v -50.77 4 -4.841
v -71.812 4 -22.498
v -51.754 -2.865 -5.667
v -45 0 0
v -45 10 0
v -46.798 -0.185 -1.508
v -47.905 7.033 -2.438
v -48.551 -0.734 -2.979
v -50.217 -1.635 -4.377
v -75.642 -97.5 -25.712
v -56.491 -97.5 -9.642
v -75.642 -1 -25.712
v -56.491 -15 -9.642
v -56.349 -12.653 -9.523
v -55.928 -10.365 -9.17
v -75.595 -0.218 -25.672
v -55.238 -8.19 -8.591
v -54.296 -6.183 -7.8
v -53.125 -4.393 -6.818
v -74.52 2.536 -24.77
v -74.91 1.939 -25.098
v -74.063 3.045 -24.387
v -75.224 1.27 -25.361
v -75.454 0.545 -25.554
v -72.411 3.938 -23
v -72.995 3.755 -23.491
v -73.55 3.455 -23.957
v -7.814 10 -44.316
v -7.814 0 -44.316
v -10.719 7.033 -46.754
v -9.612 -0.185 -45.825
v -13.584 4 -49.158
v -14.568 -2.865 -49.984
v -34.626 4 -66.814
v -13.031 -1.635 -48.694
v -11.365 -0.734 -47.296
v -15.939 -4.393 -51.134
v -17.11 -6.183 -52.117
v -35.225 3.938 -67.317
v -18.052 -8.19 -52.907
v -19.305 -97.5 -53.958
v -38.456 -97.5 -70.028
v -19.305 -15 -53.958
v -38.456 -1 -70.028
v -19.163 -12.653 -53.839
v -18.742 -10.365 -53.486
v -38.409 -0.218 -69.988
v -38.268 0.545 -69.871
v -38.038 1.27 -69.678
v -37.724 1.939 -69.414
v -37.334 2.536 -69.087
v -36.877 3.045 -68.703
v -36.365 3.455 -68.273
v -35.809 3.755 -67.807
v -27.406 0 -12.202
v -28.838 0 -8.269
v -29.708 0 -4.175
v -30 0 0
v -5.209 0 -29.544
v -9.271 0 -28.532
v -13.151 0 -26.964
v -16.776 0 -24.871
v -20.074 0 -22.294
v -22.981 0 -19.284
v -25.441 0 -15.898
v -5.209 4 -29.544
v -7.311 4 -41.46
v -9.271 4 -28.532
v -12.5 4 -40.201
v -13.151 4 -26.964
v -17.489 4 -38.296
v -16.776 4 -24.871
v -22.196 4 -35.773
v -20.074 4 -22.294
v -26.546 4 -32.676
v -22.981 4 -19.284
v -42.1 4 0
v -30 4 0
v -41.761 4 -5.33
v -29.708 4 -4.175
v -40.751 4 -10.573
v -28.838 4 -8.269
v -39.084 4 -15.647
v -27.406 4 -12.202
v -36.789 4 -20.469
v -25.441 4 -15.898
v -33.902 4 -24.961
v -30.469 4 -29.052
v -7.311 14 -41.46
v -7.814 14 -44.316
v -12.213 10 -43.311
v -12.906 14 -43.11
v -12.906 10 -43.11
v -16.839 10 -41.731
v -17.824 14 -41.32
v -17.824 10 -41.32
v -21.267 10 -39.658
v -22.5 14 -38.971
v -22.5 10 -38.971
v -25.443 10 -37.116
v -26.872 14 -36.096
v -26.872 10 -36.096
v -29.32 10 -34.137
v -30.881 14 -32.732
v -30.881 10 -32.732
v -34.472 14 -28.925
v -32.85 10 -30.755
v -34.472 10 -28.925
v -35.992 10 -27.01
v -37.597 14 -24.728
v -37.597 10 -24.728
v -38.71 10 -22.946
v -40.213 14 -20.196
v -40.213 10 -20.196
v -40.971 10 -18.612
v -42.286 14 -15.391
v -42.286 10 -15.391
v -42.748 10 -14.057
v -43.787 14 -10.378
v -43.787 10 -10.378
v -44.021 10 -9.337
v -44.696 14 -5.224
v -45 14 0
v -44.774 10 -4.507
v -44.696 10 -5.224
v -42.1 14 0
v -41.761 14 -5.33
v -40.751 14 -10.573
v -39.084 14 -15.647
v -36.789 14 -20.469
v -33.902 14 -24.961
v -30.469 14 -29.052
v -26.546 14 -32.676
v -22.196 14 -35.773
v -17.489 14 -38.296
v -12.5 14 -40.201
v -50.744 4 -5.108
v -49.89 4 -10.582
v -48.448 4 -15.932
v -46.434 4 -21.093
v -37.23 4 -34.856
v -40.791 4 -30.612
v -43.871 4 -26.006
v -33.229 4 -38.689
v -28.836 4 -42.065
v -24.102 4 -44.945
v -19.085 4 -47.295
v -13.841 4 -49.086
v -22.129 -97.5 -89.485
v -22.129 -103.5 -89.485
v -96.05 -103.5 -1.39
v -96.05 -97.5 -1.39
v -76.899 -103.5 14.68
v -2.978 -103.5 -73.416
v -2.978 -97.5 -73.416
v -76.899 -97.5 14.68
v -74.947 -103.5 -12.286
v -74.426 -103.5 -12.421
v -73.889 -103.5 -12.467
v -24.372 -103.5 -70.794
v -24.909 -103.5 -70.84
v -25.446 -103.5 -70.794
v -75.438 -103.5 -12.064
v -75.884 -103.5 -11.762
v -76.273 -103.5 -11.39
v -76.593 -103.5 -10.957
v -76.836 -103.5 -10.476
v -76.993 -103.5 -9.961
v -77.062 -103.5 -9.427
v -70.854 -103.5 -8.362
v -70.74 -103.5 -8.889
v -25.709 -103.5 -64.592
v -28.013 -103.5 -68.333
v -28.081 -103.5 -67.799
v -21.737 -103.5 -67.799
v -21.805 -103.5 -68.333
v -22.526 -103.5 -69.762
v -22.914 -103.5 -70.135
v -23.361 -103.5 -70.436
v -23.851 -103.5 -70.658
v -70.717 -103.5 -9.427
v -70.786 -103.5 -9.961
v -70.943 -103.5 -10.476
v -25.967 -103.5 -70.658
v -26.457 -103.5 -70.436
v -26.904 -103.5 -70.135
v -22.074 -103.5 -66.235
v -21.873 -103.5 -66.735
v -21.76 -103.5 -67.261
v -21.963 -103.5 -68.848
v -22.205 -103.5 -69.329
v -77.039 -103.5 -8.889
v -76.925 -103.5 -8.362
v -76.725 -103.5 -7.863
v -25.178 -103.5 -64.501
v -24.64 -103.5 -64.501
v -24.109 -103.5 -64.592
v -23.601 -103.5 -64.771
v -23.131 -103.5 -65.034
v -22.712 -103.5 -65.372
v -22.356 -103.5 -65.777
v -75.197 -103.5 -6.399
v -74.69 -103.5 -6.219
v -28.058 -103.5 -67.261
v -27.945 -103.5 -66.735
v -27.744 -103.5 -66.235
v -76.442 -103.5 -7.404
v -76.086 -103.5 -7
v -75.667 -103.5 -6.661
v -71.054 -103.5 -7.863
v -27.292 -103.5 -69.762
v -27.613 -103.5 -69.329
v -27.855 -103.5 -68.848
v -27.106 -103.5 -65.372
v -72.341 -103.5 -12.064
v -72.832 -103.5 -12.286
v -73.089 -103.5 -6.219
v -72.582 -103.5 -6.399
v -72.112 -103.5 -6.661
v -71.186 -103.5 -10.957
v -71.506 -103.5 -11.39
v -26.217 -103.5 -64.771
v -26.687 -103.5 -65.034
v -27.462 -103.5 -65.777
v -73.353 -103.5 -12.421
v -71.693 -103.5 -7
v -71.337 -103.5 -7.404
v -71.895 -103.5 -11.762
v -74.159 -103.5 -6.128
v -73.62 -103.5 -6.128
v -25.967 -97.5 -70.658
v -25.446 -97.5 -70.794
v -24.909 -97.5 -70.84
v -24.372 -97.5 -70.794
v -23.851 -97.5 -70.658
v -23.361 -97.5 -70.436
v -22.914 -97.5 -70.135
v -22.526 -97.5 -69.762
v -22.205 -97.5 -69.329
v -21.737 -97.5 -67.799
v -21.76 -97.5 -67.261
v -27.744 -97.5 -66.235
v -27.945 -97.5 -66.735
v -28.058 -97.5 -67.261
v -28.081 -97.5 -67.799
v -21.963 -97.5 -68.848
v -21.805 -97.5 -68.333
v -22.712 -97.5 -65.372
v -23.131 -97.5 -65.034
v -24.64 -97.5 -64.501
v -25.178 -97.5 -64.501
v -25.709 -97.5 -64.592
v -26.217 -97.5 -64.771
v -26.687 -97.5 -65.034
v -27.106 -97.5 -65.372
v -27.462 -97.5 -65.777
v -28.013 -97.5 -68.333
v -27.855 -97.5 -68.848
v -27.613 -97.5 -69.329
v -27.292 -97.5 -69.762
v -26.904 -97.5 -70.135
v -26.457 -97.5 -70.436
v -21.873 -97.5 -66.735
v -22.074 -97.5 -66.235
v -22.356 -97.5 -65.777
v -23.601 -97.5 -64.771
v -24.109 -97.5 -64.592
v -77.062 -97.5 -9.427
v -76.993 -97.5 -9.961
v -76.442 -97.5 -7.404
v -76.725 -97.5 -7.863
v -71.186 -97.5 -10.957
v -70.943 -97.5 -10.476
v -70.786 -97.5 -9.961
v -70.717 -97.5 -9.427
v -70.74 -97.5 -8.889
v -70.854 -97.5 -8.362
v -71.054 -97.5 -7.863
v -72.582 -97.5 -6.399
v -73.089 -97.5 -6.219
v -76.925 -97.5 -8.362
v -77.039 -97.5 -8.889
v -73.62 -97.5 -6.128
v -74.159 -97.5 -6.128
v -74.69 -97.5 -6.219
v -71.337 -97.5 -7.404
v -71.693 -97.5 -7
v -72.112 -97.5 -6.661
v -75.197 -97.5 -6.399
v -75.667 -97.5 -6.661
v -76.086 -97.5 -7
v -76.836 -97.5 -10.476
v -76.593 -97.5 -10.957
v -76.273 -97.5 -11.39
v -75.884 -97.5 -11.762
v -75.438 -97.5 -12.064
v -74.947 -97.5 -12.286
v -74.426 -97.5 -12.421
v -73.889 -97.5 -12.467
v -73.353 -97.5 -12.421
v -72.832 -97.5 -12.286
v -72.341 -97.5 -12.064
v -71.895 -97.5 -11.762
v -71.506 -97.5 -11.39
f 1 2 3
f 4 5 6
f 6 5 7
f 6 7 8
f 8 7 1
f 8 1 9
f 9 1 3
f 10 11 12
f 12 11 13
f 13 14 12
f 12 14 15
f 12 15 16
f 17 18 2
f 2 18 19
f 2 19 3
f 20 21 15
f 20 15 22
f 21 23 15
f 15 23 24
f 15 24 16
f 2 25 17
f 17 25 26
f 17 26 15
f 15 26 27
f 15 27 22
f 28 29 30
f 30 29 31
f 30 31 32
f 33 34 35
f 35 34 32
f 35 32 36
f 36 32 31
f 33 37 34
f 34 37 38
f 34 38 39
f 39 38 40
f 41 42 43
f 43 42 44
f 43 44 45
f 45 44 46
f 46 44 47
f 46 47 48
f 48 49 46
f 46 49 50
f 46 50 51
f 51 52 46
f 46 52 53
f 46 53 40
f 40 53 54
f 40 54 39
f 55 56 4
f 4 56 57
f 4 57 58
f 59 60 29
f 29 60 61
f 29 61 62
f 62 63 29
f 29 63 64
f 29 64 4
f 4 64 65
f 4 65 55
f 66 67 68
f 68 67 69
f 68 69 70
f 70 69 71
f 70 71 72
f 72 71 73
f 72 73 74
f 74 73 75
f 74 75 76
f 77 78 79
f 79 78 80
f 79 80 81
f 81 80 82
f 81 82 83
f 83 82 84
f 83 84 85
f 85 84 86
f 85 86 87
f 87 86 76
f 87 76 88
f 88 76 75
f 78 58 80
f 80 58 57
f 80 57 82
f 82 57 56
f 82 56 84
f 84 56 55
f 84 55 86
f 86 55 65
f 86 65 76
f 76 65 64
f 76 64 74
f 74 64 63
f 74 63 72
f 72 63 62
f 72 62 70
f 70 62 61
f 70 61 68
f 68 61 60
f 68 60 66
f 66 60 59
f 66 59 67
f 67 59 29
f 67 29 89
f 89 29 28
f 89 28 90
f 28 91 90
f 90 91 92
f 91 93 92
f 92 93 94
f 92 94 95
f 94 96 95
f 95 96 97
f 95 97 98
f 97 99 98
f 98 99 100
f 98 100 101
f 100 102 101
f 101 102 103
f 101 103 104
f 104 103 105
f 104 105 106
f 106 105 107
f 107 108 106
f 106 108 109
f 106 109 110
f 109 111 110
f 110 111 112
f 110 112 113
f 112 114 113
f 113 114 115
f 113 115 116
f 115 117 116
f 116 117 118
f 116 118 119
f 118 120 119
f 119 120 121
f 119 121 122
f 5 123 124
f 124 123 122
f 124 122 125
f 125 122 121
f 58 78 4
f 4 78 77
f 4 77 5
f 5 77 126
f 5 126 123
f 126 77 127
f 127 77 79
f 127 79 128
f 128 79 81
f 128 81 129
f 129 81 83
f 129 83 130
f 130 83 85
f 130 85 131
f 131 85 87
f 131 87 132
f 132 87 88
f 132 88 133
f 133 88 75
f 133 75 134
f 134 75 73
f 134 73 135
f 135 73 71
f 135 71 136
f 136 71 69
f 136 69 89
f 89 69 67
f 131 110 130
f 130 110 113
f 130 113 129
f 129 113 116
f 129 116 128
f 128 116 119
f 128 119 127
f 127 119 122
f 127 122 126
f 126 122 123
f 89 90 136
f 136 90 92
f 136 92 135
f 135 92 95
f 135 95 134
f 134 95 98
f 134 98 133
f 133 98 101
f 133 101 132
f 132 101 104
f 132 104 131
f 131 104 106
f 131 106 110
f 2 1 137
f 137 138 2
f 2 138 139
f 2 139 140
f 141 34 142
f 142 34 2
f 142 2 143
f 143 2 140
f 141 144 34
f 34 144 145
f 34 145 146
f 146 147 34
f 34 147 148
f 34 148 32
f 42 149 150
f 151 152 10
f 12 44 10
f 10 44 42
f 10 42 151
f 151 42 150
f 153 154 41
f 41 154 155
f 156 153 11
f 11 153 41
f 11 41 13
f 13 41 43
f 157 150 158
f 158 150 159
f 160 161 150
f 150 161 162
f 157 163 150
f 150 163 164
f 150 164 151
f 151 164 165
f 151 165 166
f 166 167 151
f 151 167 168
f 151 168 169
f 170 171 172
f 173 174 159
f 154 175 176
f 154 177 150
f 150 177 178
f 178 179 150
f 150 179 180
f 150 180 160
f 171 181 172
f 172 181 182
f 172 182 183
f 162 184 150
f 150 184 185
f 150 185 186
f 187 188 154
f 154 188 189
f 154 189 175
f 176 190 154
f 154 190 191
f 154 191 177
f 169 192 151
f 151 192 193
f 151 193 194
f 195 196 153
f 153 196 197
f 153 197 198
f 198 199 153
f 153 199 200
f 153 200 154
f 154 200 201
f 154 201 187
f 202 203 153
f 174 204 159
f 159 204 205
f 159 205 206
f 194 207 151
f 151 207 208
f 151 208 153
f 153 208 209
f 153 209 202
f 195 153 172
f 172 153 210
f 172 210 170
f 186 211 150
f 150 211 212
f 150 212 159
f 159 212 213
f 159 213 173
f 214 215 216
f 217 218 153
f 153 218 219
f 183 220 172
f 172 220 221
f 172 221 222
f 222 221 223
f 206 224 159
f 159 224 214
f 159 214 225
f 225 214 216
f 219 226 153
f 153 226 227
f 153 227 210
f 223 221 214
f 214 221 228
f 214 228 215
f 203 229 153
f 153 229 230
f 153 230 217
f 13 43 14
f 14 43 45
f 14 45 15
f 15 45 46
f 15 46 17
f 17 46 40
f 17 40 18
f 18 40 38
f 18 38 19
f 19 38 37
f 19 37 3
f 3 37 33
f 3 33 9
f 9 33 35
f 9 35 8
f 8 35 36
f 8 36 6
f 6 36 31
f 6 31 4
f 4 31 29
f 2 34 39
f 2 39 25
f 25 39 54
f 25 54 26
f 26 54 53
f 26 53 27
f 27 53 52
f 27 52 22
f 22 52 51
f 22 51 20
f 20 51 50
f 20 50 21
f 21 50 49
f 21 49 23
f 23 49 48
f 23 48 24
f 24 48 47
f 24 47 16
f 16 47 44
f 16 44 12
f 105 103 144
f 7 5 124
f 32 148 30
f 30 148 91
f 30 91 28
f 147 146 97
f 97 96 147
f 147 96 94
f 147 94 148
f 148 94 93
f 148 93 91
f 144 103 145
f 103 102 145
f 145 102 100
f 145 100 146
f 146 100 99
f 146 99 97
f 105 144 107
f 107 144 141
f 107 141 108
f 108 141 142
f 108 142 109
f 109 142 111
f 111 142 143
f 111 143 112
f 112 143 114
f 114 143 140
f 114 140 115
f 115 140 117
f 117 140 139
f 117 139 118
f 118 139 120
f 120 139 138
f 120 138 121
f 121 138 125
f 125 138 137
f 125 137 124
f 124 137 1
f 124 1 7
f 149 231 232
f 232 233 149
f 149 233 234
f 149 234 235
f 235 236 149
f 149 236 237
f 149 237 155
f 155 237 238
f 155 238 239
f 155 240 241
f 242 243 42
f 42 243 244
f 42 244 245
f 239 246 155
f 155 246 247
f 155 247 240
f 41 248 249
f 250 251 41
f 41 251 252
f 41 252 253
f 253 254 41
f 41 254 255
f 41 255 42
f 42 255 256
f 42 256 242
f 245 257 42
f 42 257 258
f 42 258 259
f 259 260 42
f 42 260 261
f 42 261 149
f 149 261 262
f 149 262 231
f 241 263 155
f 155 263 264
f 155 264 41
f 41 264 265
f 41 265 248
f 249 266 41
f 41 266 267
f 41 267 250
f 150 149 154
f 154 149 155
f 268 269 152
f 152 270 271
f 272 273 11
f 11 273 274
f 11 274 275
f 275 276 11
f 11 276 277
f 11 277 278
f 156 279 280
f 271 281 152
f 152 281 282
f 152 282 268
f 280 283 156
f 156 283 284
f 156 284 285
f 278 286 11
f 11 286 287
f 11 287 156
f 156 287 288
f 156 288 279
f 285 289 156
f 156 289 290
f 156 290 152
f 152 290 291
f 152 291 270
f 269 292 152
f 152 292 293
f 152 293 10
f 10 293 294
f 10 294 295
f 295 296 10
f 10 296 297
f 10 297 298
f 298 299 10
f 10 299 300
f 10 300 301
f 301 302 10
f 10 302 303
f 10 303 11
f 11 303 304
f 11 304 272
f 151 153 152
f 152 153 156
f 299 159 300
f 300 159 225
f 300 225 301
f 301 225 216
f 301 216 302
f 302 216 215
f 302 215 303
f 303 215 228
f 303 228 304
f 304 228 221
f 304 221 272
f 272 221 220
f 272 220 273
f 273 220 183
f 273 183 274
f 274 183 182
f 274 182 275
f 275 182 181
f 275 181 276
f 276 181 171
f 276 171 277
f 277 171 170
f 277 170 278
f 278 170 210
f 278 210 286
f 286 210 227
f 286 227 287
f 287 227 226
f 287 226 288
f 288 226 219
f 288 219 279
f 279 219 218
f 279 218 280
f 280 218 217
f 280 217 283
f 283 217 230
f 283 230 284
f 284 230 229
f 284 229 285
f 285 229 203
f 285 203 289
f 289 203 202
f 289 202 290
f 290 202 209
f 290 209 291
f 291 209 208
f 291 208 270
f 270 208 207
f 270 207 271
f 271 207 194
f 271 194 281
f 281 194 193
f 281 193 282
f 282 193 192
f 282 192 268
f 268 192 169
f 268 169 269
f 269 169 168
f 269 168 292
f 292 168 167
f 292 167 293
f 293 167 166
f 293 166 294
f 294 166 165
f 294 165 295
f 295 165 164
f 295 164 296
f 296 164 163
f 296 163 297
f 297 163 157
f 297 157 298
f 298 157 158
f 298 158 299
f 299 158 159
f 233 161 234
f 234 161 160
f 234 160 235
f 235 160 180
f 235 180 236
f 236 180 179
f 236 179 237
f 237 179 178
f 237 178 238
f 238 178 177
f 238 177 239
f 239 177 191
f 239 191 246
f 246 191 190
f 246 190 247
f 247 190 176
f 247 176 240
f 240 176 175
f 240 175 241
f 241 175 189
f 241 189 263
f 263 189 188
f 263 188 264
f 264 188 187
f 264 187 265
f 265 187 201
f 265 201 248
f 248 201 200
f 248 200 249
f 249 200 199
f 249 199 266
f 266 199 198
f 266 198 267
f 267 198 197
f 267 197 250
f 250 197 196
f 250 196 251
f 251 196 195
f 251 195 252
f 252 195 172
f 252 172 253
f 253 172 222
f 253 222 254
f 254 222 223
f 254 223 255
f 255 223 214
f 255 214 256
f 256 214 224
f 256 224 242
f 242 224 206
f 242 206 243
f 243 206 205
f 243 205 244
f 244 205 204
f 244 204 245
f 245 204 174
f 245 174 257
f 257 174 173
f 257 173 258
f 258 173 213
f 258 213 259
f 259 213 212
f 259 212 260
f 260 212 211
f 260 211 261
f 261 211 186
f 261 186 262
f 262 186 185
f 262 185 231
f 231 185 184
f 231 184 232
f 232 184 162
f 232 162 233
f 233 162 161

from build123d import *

# Parameters (mm, degrees)
BOSS_EXTRUDE1_DEPTH = 4
BOSS_EXTRUDE2_DEPTH = 14
BOSS_EXTRUDE3_DEPTH = 4
BOSS_EXTRUDE4_DEPTH = 103.5
FILLET1_R           = 15
FILLET2_R           = 5
CHAMFER1_SIZE       = 6
SKETCH6_W           = 25
SKETCH6_H           = 6
BOSS_EXTRUDE5_DEPTH = 25.4
SKETCH7_W           = 25
SKETCH7_H           = 6
BOSS_EXTRUDE6_DEPTH = 31.75
SKETCH8_R           = 2.5527
CUT_EXTRUDE1_DEPTH  = 25.4
SKETCH9_R           = 3.175
CUT_EXTRUDE2_DEPTH  = 25.4


with BuildPart() as part:
    # Sketch1 → Boss-Extrude1 (new body)
    with BuildSketch(Plane(origin=(0, 0, 0), x_dir=(1, 0, 0), z_dir=(0, 1, 0))):
        with BuildLine():
            Line((-42.1, 0), (-30, 0))
            ThreePointArc((-30, 0), (-22.981333, 19.283628), (-5.209445, 29.544233))
            Line((-5.209445, 29.544233), (-7.310588, 41.460406))
            ThreePointArc((-7.310588, 41.460406), (-32.250471, 27.061358), (-42.1, 0))
        make_face()
        with BuildLine():
            Line((-45, 0), (-42.1, 0))
            ThreePointArc((-42.1, 0), (-32.250471, 27.061358), (-7.310588, 41.460406))
            Line((-7.310588, 41.460406), (-7.814168, 44.316349))
            ThreePointArc((-7.814168, 44.316349), (-34.472, 28.925442), (-45, 0))
        make_face()
    extrude(amount=BOSS_EXTRUDE1_DEPTH)

    # Sketch1<3> → Boss-Extrude2 (add)
    with BuildSketch(Plane(origin=(0, 0, 0), x_dir=(1, 0, 0), z_dir=(0, 1, 0))):
        with BuildLine():
            Line((-45, 0), (-42.1, 0))
            ThreePointArc((-42.1, 0), (-32.250471, 27.061358), (-7.310588, 41.460406))
            Line((-7.310588, 41.460406), (-7.814168, 44.316349))
            ThreePointArc((-7.814168, 44.316349), (-34.472, 28.925442), (-45, 0))
        make_face()
    extrude(amount=BOSS_EXTRUDE2_DEPTH)

    # Sketch3 → Boss-Extrude3 (add)
    with BuildSketch(Plane.XZ):
        Polygon((-7.814168, -44.316349), (-45, 0), (-75.641778, -25.711504), (-38.455946, -70.027853), align=None)
    extrude(amount=-BOSS_EXTRUDE3_DEPTH)

    # Sketch4 → Boss-Extrude4 (add)
    with BuildSketch(Plane.XZ):
        Polygon((-38.455946, -70.027853), (-19.304835, -53.958163), (-56.490667, -9.641814), (-75.641778, -25.711504), align=None)
    extrude(amount=BOSS_EXTRUDE4_DEPTH)

    # Fillet1
    fillet1_edges = [part.edges().sort_by_distance(p)[0] for p in [
        (-37.897751, 0, -31.799989),
    ]]
    fillet(fillet1_edges, radius=FILLET1_R)

    # Fillet2
    fillet2_edges = [part.edges().sort_by_distance(p)[0] for p in [
        (-57.048862, 4, -47.869679),
    ]]
    fillet(fillet2_edges, radius=FILLET2_R)

    # Chamfer1
    chamfer1_edges = [part.edges().sort_by_distance(p)[0] for p in [
        (-34.472, 4, -28.925442),
    ]]
    chamfer(chamfer1_edges, length=CHAMFER1_SIZE)

    # Sketch6 → Boss-Extrude5 (add)
    with BuildSketch(Plane(origin=(18.592916, 0, -22.158174), x_dir=(-0.7660444431189766, 0, -0.6427876096865413), z_dir=(0.6427876096865411, 0, -0.7660444431189765))):
        with Locations((61.972, -100.5)):
            Rectangle(SKETCH6_W, SKETCH6_H)
    extrude(amount=BOSS_EXTRUDE5_DEPTH)

    # Sketch7 → Boss-Extrude6 (add)
    with BuildSketch(Plane(origin=(-18.592916, 0, 22.158174), x_dir=(0.7660444431189769, 0, 0.6427876096865406), z_dir=(-0.6427876096865406, 0, 0.7660444431189769))):
        with Locations((-61.972, -100.5)):
            Rectangle(SKETCH7_W, SKETCH7_H)
    extrude(amount=BOSS_EXTRUDE6_DEPTH)

    # Sketch8 → Cut-Extrude1 (cut)
    with BuildSketch(Plane(origin=(0, -97.5, 0), x_dir=(1, 0, 0), z_dir=(0, 1, 0))):
        with Locations(Location((-73.889481, 9.291988, 0), (0, 0, 270))):
            Circle(SKETCH8_R)
        with Locations(Location((-24.909065, 67.664575, 0), (0, 0, 270))):
            Circle(SKETCH8_R)
    extrude(amount=-CUT_EXTRUDE1_DEPTH, mode=Mode.SUBTRACT)

    # Sketch9 → Cut-Extrude2 (cut)
    with BuildSketch(Plane.XZ.offset(103.5)):
        with Locations(Location((-73.889481, -9.291988, 0), (0, 0, 270))):
            Circle(SKETCH9_R)
        with Locations(Location((-24.909065, -67.664575, 0), (0, 0, 270))):
            Circle(SKETCH9_R)
    extrude(amount=-CUT_EXTRUDE2_DEPTH, mode=Mode.SUBTRACT)


solid = part.part
